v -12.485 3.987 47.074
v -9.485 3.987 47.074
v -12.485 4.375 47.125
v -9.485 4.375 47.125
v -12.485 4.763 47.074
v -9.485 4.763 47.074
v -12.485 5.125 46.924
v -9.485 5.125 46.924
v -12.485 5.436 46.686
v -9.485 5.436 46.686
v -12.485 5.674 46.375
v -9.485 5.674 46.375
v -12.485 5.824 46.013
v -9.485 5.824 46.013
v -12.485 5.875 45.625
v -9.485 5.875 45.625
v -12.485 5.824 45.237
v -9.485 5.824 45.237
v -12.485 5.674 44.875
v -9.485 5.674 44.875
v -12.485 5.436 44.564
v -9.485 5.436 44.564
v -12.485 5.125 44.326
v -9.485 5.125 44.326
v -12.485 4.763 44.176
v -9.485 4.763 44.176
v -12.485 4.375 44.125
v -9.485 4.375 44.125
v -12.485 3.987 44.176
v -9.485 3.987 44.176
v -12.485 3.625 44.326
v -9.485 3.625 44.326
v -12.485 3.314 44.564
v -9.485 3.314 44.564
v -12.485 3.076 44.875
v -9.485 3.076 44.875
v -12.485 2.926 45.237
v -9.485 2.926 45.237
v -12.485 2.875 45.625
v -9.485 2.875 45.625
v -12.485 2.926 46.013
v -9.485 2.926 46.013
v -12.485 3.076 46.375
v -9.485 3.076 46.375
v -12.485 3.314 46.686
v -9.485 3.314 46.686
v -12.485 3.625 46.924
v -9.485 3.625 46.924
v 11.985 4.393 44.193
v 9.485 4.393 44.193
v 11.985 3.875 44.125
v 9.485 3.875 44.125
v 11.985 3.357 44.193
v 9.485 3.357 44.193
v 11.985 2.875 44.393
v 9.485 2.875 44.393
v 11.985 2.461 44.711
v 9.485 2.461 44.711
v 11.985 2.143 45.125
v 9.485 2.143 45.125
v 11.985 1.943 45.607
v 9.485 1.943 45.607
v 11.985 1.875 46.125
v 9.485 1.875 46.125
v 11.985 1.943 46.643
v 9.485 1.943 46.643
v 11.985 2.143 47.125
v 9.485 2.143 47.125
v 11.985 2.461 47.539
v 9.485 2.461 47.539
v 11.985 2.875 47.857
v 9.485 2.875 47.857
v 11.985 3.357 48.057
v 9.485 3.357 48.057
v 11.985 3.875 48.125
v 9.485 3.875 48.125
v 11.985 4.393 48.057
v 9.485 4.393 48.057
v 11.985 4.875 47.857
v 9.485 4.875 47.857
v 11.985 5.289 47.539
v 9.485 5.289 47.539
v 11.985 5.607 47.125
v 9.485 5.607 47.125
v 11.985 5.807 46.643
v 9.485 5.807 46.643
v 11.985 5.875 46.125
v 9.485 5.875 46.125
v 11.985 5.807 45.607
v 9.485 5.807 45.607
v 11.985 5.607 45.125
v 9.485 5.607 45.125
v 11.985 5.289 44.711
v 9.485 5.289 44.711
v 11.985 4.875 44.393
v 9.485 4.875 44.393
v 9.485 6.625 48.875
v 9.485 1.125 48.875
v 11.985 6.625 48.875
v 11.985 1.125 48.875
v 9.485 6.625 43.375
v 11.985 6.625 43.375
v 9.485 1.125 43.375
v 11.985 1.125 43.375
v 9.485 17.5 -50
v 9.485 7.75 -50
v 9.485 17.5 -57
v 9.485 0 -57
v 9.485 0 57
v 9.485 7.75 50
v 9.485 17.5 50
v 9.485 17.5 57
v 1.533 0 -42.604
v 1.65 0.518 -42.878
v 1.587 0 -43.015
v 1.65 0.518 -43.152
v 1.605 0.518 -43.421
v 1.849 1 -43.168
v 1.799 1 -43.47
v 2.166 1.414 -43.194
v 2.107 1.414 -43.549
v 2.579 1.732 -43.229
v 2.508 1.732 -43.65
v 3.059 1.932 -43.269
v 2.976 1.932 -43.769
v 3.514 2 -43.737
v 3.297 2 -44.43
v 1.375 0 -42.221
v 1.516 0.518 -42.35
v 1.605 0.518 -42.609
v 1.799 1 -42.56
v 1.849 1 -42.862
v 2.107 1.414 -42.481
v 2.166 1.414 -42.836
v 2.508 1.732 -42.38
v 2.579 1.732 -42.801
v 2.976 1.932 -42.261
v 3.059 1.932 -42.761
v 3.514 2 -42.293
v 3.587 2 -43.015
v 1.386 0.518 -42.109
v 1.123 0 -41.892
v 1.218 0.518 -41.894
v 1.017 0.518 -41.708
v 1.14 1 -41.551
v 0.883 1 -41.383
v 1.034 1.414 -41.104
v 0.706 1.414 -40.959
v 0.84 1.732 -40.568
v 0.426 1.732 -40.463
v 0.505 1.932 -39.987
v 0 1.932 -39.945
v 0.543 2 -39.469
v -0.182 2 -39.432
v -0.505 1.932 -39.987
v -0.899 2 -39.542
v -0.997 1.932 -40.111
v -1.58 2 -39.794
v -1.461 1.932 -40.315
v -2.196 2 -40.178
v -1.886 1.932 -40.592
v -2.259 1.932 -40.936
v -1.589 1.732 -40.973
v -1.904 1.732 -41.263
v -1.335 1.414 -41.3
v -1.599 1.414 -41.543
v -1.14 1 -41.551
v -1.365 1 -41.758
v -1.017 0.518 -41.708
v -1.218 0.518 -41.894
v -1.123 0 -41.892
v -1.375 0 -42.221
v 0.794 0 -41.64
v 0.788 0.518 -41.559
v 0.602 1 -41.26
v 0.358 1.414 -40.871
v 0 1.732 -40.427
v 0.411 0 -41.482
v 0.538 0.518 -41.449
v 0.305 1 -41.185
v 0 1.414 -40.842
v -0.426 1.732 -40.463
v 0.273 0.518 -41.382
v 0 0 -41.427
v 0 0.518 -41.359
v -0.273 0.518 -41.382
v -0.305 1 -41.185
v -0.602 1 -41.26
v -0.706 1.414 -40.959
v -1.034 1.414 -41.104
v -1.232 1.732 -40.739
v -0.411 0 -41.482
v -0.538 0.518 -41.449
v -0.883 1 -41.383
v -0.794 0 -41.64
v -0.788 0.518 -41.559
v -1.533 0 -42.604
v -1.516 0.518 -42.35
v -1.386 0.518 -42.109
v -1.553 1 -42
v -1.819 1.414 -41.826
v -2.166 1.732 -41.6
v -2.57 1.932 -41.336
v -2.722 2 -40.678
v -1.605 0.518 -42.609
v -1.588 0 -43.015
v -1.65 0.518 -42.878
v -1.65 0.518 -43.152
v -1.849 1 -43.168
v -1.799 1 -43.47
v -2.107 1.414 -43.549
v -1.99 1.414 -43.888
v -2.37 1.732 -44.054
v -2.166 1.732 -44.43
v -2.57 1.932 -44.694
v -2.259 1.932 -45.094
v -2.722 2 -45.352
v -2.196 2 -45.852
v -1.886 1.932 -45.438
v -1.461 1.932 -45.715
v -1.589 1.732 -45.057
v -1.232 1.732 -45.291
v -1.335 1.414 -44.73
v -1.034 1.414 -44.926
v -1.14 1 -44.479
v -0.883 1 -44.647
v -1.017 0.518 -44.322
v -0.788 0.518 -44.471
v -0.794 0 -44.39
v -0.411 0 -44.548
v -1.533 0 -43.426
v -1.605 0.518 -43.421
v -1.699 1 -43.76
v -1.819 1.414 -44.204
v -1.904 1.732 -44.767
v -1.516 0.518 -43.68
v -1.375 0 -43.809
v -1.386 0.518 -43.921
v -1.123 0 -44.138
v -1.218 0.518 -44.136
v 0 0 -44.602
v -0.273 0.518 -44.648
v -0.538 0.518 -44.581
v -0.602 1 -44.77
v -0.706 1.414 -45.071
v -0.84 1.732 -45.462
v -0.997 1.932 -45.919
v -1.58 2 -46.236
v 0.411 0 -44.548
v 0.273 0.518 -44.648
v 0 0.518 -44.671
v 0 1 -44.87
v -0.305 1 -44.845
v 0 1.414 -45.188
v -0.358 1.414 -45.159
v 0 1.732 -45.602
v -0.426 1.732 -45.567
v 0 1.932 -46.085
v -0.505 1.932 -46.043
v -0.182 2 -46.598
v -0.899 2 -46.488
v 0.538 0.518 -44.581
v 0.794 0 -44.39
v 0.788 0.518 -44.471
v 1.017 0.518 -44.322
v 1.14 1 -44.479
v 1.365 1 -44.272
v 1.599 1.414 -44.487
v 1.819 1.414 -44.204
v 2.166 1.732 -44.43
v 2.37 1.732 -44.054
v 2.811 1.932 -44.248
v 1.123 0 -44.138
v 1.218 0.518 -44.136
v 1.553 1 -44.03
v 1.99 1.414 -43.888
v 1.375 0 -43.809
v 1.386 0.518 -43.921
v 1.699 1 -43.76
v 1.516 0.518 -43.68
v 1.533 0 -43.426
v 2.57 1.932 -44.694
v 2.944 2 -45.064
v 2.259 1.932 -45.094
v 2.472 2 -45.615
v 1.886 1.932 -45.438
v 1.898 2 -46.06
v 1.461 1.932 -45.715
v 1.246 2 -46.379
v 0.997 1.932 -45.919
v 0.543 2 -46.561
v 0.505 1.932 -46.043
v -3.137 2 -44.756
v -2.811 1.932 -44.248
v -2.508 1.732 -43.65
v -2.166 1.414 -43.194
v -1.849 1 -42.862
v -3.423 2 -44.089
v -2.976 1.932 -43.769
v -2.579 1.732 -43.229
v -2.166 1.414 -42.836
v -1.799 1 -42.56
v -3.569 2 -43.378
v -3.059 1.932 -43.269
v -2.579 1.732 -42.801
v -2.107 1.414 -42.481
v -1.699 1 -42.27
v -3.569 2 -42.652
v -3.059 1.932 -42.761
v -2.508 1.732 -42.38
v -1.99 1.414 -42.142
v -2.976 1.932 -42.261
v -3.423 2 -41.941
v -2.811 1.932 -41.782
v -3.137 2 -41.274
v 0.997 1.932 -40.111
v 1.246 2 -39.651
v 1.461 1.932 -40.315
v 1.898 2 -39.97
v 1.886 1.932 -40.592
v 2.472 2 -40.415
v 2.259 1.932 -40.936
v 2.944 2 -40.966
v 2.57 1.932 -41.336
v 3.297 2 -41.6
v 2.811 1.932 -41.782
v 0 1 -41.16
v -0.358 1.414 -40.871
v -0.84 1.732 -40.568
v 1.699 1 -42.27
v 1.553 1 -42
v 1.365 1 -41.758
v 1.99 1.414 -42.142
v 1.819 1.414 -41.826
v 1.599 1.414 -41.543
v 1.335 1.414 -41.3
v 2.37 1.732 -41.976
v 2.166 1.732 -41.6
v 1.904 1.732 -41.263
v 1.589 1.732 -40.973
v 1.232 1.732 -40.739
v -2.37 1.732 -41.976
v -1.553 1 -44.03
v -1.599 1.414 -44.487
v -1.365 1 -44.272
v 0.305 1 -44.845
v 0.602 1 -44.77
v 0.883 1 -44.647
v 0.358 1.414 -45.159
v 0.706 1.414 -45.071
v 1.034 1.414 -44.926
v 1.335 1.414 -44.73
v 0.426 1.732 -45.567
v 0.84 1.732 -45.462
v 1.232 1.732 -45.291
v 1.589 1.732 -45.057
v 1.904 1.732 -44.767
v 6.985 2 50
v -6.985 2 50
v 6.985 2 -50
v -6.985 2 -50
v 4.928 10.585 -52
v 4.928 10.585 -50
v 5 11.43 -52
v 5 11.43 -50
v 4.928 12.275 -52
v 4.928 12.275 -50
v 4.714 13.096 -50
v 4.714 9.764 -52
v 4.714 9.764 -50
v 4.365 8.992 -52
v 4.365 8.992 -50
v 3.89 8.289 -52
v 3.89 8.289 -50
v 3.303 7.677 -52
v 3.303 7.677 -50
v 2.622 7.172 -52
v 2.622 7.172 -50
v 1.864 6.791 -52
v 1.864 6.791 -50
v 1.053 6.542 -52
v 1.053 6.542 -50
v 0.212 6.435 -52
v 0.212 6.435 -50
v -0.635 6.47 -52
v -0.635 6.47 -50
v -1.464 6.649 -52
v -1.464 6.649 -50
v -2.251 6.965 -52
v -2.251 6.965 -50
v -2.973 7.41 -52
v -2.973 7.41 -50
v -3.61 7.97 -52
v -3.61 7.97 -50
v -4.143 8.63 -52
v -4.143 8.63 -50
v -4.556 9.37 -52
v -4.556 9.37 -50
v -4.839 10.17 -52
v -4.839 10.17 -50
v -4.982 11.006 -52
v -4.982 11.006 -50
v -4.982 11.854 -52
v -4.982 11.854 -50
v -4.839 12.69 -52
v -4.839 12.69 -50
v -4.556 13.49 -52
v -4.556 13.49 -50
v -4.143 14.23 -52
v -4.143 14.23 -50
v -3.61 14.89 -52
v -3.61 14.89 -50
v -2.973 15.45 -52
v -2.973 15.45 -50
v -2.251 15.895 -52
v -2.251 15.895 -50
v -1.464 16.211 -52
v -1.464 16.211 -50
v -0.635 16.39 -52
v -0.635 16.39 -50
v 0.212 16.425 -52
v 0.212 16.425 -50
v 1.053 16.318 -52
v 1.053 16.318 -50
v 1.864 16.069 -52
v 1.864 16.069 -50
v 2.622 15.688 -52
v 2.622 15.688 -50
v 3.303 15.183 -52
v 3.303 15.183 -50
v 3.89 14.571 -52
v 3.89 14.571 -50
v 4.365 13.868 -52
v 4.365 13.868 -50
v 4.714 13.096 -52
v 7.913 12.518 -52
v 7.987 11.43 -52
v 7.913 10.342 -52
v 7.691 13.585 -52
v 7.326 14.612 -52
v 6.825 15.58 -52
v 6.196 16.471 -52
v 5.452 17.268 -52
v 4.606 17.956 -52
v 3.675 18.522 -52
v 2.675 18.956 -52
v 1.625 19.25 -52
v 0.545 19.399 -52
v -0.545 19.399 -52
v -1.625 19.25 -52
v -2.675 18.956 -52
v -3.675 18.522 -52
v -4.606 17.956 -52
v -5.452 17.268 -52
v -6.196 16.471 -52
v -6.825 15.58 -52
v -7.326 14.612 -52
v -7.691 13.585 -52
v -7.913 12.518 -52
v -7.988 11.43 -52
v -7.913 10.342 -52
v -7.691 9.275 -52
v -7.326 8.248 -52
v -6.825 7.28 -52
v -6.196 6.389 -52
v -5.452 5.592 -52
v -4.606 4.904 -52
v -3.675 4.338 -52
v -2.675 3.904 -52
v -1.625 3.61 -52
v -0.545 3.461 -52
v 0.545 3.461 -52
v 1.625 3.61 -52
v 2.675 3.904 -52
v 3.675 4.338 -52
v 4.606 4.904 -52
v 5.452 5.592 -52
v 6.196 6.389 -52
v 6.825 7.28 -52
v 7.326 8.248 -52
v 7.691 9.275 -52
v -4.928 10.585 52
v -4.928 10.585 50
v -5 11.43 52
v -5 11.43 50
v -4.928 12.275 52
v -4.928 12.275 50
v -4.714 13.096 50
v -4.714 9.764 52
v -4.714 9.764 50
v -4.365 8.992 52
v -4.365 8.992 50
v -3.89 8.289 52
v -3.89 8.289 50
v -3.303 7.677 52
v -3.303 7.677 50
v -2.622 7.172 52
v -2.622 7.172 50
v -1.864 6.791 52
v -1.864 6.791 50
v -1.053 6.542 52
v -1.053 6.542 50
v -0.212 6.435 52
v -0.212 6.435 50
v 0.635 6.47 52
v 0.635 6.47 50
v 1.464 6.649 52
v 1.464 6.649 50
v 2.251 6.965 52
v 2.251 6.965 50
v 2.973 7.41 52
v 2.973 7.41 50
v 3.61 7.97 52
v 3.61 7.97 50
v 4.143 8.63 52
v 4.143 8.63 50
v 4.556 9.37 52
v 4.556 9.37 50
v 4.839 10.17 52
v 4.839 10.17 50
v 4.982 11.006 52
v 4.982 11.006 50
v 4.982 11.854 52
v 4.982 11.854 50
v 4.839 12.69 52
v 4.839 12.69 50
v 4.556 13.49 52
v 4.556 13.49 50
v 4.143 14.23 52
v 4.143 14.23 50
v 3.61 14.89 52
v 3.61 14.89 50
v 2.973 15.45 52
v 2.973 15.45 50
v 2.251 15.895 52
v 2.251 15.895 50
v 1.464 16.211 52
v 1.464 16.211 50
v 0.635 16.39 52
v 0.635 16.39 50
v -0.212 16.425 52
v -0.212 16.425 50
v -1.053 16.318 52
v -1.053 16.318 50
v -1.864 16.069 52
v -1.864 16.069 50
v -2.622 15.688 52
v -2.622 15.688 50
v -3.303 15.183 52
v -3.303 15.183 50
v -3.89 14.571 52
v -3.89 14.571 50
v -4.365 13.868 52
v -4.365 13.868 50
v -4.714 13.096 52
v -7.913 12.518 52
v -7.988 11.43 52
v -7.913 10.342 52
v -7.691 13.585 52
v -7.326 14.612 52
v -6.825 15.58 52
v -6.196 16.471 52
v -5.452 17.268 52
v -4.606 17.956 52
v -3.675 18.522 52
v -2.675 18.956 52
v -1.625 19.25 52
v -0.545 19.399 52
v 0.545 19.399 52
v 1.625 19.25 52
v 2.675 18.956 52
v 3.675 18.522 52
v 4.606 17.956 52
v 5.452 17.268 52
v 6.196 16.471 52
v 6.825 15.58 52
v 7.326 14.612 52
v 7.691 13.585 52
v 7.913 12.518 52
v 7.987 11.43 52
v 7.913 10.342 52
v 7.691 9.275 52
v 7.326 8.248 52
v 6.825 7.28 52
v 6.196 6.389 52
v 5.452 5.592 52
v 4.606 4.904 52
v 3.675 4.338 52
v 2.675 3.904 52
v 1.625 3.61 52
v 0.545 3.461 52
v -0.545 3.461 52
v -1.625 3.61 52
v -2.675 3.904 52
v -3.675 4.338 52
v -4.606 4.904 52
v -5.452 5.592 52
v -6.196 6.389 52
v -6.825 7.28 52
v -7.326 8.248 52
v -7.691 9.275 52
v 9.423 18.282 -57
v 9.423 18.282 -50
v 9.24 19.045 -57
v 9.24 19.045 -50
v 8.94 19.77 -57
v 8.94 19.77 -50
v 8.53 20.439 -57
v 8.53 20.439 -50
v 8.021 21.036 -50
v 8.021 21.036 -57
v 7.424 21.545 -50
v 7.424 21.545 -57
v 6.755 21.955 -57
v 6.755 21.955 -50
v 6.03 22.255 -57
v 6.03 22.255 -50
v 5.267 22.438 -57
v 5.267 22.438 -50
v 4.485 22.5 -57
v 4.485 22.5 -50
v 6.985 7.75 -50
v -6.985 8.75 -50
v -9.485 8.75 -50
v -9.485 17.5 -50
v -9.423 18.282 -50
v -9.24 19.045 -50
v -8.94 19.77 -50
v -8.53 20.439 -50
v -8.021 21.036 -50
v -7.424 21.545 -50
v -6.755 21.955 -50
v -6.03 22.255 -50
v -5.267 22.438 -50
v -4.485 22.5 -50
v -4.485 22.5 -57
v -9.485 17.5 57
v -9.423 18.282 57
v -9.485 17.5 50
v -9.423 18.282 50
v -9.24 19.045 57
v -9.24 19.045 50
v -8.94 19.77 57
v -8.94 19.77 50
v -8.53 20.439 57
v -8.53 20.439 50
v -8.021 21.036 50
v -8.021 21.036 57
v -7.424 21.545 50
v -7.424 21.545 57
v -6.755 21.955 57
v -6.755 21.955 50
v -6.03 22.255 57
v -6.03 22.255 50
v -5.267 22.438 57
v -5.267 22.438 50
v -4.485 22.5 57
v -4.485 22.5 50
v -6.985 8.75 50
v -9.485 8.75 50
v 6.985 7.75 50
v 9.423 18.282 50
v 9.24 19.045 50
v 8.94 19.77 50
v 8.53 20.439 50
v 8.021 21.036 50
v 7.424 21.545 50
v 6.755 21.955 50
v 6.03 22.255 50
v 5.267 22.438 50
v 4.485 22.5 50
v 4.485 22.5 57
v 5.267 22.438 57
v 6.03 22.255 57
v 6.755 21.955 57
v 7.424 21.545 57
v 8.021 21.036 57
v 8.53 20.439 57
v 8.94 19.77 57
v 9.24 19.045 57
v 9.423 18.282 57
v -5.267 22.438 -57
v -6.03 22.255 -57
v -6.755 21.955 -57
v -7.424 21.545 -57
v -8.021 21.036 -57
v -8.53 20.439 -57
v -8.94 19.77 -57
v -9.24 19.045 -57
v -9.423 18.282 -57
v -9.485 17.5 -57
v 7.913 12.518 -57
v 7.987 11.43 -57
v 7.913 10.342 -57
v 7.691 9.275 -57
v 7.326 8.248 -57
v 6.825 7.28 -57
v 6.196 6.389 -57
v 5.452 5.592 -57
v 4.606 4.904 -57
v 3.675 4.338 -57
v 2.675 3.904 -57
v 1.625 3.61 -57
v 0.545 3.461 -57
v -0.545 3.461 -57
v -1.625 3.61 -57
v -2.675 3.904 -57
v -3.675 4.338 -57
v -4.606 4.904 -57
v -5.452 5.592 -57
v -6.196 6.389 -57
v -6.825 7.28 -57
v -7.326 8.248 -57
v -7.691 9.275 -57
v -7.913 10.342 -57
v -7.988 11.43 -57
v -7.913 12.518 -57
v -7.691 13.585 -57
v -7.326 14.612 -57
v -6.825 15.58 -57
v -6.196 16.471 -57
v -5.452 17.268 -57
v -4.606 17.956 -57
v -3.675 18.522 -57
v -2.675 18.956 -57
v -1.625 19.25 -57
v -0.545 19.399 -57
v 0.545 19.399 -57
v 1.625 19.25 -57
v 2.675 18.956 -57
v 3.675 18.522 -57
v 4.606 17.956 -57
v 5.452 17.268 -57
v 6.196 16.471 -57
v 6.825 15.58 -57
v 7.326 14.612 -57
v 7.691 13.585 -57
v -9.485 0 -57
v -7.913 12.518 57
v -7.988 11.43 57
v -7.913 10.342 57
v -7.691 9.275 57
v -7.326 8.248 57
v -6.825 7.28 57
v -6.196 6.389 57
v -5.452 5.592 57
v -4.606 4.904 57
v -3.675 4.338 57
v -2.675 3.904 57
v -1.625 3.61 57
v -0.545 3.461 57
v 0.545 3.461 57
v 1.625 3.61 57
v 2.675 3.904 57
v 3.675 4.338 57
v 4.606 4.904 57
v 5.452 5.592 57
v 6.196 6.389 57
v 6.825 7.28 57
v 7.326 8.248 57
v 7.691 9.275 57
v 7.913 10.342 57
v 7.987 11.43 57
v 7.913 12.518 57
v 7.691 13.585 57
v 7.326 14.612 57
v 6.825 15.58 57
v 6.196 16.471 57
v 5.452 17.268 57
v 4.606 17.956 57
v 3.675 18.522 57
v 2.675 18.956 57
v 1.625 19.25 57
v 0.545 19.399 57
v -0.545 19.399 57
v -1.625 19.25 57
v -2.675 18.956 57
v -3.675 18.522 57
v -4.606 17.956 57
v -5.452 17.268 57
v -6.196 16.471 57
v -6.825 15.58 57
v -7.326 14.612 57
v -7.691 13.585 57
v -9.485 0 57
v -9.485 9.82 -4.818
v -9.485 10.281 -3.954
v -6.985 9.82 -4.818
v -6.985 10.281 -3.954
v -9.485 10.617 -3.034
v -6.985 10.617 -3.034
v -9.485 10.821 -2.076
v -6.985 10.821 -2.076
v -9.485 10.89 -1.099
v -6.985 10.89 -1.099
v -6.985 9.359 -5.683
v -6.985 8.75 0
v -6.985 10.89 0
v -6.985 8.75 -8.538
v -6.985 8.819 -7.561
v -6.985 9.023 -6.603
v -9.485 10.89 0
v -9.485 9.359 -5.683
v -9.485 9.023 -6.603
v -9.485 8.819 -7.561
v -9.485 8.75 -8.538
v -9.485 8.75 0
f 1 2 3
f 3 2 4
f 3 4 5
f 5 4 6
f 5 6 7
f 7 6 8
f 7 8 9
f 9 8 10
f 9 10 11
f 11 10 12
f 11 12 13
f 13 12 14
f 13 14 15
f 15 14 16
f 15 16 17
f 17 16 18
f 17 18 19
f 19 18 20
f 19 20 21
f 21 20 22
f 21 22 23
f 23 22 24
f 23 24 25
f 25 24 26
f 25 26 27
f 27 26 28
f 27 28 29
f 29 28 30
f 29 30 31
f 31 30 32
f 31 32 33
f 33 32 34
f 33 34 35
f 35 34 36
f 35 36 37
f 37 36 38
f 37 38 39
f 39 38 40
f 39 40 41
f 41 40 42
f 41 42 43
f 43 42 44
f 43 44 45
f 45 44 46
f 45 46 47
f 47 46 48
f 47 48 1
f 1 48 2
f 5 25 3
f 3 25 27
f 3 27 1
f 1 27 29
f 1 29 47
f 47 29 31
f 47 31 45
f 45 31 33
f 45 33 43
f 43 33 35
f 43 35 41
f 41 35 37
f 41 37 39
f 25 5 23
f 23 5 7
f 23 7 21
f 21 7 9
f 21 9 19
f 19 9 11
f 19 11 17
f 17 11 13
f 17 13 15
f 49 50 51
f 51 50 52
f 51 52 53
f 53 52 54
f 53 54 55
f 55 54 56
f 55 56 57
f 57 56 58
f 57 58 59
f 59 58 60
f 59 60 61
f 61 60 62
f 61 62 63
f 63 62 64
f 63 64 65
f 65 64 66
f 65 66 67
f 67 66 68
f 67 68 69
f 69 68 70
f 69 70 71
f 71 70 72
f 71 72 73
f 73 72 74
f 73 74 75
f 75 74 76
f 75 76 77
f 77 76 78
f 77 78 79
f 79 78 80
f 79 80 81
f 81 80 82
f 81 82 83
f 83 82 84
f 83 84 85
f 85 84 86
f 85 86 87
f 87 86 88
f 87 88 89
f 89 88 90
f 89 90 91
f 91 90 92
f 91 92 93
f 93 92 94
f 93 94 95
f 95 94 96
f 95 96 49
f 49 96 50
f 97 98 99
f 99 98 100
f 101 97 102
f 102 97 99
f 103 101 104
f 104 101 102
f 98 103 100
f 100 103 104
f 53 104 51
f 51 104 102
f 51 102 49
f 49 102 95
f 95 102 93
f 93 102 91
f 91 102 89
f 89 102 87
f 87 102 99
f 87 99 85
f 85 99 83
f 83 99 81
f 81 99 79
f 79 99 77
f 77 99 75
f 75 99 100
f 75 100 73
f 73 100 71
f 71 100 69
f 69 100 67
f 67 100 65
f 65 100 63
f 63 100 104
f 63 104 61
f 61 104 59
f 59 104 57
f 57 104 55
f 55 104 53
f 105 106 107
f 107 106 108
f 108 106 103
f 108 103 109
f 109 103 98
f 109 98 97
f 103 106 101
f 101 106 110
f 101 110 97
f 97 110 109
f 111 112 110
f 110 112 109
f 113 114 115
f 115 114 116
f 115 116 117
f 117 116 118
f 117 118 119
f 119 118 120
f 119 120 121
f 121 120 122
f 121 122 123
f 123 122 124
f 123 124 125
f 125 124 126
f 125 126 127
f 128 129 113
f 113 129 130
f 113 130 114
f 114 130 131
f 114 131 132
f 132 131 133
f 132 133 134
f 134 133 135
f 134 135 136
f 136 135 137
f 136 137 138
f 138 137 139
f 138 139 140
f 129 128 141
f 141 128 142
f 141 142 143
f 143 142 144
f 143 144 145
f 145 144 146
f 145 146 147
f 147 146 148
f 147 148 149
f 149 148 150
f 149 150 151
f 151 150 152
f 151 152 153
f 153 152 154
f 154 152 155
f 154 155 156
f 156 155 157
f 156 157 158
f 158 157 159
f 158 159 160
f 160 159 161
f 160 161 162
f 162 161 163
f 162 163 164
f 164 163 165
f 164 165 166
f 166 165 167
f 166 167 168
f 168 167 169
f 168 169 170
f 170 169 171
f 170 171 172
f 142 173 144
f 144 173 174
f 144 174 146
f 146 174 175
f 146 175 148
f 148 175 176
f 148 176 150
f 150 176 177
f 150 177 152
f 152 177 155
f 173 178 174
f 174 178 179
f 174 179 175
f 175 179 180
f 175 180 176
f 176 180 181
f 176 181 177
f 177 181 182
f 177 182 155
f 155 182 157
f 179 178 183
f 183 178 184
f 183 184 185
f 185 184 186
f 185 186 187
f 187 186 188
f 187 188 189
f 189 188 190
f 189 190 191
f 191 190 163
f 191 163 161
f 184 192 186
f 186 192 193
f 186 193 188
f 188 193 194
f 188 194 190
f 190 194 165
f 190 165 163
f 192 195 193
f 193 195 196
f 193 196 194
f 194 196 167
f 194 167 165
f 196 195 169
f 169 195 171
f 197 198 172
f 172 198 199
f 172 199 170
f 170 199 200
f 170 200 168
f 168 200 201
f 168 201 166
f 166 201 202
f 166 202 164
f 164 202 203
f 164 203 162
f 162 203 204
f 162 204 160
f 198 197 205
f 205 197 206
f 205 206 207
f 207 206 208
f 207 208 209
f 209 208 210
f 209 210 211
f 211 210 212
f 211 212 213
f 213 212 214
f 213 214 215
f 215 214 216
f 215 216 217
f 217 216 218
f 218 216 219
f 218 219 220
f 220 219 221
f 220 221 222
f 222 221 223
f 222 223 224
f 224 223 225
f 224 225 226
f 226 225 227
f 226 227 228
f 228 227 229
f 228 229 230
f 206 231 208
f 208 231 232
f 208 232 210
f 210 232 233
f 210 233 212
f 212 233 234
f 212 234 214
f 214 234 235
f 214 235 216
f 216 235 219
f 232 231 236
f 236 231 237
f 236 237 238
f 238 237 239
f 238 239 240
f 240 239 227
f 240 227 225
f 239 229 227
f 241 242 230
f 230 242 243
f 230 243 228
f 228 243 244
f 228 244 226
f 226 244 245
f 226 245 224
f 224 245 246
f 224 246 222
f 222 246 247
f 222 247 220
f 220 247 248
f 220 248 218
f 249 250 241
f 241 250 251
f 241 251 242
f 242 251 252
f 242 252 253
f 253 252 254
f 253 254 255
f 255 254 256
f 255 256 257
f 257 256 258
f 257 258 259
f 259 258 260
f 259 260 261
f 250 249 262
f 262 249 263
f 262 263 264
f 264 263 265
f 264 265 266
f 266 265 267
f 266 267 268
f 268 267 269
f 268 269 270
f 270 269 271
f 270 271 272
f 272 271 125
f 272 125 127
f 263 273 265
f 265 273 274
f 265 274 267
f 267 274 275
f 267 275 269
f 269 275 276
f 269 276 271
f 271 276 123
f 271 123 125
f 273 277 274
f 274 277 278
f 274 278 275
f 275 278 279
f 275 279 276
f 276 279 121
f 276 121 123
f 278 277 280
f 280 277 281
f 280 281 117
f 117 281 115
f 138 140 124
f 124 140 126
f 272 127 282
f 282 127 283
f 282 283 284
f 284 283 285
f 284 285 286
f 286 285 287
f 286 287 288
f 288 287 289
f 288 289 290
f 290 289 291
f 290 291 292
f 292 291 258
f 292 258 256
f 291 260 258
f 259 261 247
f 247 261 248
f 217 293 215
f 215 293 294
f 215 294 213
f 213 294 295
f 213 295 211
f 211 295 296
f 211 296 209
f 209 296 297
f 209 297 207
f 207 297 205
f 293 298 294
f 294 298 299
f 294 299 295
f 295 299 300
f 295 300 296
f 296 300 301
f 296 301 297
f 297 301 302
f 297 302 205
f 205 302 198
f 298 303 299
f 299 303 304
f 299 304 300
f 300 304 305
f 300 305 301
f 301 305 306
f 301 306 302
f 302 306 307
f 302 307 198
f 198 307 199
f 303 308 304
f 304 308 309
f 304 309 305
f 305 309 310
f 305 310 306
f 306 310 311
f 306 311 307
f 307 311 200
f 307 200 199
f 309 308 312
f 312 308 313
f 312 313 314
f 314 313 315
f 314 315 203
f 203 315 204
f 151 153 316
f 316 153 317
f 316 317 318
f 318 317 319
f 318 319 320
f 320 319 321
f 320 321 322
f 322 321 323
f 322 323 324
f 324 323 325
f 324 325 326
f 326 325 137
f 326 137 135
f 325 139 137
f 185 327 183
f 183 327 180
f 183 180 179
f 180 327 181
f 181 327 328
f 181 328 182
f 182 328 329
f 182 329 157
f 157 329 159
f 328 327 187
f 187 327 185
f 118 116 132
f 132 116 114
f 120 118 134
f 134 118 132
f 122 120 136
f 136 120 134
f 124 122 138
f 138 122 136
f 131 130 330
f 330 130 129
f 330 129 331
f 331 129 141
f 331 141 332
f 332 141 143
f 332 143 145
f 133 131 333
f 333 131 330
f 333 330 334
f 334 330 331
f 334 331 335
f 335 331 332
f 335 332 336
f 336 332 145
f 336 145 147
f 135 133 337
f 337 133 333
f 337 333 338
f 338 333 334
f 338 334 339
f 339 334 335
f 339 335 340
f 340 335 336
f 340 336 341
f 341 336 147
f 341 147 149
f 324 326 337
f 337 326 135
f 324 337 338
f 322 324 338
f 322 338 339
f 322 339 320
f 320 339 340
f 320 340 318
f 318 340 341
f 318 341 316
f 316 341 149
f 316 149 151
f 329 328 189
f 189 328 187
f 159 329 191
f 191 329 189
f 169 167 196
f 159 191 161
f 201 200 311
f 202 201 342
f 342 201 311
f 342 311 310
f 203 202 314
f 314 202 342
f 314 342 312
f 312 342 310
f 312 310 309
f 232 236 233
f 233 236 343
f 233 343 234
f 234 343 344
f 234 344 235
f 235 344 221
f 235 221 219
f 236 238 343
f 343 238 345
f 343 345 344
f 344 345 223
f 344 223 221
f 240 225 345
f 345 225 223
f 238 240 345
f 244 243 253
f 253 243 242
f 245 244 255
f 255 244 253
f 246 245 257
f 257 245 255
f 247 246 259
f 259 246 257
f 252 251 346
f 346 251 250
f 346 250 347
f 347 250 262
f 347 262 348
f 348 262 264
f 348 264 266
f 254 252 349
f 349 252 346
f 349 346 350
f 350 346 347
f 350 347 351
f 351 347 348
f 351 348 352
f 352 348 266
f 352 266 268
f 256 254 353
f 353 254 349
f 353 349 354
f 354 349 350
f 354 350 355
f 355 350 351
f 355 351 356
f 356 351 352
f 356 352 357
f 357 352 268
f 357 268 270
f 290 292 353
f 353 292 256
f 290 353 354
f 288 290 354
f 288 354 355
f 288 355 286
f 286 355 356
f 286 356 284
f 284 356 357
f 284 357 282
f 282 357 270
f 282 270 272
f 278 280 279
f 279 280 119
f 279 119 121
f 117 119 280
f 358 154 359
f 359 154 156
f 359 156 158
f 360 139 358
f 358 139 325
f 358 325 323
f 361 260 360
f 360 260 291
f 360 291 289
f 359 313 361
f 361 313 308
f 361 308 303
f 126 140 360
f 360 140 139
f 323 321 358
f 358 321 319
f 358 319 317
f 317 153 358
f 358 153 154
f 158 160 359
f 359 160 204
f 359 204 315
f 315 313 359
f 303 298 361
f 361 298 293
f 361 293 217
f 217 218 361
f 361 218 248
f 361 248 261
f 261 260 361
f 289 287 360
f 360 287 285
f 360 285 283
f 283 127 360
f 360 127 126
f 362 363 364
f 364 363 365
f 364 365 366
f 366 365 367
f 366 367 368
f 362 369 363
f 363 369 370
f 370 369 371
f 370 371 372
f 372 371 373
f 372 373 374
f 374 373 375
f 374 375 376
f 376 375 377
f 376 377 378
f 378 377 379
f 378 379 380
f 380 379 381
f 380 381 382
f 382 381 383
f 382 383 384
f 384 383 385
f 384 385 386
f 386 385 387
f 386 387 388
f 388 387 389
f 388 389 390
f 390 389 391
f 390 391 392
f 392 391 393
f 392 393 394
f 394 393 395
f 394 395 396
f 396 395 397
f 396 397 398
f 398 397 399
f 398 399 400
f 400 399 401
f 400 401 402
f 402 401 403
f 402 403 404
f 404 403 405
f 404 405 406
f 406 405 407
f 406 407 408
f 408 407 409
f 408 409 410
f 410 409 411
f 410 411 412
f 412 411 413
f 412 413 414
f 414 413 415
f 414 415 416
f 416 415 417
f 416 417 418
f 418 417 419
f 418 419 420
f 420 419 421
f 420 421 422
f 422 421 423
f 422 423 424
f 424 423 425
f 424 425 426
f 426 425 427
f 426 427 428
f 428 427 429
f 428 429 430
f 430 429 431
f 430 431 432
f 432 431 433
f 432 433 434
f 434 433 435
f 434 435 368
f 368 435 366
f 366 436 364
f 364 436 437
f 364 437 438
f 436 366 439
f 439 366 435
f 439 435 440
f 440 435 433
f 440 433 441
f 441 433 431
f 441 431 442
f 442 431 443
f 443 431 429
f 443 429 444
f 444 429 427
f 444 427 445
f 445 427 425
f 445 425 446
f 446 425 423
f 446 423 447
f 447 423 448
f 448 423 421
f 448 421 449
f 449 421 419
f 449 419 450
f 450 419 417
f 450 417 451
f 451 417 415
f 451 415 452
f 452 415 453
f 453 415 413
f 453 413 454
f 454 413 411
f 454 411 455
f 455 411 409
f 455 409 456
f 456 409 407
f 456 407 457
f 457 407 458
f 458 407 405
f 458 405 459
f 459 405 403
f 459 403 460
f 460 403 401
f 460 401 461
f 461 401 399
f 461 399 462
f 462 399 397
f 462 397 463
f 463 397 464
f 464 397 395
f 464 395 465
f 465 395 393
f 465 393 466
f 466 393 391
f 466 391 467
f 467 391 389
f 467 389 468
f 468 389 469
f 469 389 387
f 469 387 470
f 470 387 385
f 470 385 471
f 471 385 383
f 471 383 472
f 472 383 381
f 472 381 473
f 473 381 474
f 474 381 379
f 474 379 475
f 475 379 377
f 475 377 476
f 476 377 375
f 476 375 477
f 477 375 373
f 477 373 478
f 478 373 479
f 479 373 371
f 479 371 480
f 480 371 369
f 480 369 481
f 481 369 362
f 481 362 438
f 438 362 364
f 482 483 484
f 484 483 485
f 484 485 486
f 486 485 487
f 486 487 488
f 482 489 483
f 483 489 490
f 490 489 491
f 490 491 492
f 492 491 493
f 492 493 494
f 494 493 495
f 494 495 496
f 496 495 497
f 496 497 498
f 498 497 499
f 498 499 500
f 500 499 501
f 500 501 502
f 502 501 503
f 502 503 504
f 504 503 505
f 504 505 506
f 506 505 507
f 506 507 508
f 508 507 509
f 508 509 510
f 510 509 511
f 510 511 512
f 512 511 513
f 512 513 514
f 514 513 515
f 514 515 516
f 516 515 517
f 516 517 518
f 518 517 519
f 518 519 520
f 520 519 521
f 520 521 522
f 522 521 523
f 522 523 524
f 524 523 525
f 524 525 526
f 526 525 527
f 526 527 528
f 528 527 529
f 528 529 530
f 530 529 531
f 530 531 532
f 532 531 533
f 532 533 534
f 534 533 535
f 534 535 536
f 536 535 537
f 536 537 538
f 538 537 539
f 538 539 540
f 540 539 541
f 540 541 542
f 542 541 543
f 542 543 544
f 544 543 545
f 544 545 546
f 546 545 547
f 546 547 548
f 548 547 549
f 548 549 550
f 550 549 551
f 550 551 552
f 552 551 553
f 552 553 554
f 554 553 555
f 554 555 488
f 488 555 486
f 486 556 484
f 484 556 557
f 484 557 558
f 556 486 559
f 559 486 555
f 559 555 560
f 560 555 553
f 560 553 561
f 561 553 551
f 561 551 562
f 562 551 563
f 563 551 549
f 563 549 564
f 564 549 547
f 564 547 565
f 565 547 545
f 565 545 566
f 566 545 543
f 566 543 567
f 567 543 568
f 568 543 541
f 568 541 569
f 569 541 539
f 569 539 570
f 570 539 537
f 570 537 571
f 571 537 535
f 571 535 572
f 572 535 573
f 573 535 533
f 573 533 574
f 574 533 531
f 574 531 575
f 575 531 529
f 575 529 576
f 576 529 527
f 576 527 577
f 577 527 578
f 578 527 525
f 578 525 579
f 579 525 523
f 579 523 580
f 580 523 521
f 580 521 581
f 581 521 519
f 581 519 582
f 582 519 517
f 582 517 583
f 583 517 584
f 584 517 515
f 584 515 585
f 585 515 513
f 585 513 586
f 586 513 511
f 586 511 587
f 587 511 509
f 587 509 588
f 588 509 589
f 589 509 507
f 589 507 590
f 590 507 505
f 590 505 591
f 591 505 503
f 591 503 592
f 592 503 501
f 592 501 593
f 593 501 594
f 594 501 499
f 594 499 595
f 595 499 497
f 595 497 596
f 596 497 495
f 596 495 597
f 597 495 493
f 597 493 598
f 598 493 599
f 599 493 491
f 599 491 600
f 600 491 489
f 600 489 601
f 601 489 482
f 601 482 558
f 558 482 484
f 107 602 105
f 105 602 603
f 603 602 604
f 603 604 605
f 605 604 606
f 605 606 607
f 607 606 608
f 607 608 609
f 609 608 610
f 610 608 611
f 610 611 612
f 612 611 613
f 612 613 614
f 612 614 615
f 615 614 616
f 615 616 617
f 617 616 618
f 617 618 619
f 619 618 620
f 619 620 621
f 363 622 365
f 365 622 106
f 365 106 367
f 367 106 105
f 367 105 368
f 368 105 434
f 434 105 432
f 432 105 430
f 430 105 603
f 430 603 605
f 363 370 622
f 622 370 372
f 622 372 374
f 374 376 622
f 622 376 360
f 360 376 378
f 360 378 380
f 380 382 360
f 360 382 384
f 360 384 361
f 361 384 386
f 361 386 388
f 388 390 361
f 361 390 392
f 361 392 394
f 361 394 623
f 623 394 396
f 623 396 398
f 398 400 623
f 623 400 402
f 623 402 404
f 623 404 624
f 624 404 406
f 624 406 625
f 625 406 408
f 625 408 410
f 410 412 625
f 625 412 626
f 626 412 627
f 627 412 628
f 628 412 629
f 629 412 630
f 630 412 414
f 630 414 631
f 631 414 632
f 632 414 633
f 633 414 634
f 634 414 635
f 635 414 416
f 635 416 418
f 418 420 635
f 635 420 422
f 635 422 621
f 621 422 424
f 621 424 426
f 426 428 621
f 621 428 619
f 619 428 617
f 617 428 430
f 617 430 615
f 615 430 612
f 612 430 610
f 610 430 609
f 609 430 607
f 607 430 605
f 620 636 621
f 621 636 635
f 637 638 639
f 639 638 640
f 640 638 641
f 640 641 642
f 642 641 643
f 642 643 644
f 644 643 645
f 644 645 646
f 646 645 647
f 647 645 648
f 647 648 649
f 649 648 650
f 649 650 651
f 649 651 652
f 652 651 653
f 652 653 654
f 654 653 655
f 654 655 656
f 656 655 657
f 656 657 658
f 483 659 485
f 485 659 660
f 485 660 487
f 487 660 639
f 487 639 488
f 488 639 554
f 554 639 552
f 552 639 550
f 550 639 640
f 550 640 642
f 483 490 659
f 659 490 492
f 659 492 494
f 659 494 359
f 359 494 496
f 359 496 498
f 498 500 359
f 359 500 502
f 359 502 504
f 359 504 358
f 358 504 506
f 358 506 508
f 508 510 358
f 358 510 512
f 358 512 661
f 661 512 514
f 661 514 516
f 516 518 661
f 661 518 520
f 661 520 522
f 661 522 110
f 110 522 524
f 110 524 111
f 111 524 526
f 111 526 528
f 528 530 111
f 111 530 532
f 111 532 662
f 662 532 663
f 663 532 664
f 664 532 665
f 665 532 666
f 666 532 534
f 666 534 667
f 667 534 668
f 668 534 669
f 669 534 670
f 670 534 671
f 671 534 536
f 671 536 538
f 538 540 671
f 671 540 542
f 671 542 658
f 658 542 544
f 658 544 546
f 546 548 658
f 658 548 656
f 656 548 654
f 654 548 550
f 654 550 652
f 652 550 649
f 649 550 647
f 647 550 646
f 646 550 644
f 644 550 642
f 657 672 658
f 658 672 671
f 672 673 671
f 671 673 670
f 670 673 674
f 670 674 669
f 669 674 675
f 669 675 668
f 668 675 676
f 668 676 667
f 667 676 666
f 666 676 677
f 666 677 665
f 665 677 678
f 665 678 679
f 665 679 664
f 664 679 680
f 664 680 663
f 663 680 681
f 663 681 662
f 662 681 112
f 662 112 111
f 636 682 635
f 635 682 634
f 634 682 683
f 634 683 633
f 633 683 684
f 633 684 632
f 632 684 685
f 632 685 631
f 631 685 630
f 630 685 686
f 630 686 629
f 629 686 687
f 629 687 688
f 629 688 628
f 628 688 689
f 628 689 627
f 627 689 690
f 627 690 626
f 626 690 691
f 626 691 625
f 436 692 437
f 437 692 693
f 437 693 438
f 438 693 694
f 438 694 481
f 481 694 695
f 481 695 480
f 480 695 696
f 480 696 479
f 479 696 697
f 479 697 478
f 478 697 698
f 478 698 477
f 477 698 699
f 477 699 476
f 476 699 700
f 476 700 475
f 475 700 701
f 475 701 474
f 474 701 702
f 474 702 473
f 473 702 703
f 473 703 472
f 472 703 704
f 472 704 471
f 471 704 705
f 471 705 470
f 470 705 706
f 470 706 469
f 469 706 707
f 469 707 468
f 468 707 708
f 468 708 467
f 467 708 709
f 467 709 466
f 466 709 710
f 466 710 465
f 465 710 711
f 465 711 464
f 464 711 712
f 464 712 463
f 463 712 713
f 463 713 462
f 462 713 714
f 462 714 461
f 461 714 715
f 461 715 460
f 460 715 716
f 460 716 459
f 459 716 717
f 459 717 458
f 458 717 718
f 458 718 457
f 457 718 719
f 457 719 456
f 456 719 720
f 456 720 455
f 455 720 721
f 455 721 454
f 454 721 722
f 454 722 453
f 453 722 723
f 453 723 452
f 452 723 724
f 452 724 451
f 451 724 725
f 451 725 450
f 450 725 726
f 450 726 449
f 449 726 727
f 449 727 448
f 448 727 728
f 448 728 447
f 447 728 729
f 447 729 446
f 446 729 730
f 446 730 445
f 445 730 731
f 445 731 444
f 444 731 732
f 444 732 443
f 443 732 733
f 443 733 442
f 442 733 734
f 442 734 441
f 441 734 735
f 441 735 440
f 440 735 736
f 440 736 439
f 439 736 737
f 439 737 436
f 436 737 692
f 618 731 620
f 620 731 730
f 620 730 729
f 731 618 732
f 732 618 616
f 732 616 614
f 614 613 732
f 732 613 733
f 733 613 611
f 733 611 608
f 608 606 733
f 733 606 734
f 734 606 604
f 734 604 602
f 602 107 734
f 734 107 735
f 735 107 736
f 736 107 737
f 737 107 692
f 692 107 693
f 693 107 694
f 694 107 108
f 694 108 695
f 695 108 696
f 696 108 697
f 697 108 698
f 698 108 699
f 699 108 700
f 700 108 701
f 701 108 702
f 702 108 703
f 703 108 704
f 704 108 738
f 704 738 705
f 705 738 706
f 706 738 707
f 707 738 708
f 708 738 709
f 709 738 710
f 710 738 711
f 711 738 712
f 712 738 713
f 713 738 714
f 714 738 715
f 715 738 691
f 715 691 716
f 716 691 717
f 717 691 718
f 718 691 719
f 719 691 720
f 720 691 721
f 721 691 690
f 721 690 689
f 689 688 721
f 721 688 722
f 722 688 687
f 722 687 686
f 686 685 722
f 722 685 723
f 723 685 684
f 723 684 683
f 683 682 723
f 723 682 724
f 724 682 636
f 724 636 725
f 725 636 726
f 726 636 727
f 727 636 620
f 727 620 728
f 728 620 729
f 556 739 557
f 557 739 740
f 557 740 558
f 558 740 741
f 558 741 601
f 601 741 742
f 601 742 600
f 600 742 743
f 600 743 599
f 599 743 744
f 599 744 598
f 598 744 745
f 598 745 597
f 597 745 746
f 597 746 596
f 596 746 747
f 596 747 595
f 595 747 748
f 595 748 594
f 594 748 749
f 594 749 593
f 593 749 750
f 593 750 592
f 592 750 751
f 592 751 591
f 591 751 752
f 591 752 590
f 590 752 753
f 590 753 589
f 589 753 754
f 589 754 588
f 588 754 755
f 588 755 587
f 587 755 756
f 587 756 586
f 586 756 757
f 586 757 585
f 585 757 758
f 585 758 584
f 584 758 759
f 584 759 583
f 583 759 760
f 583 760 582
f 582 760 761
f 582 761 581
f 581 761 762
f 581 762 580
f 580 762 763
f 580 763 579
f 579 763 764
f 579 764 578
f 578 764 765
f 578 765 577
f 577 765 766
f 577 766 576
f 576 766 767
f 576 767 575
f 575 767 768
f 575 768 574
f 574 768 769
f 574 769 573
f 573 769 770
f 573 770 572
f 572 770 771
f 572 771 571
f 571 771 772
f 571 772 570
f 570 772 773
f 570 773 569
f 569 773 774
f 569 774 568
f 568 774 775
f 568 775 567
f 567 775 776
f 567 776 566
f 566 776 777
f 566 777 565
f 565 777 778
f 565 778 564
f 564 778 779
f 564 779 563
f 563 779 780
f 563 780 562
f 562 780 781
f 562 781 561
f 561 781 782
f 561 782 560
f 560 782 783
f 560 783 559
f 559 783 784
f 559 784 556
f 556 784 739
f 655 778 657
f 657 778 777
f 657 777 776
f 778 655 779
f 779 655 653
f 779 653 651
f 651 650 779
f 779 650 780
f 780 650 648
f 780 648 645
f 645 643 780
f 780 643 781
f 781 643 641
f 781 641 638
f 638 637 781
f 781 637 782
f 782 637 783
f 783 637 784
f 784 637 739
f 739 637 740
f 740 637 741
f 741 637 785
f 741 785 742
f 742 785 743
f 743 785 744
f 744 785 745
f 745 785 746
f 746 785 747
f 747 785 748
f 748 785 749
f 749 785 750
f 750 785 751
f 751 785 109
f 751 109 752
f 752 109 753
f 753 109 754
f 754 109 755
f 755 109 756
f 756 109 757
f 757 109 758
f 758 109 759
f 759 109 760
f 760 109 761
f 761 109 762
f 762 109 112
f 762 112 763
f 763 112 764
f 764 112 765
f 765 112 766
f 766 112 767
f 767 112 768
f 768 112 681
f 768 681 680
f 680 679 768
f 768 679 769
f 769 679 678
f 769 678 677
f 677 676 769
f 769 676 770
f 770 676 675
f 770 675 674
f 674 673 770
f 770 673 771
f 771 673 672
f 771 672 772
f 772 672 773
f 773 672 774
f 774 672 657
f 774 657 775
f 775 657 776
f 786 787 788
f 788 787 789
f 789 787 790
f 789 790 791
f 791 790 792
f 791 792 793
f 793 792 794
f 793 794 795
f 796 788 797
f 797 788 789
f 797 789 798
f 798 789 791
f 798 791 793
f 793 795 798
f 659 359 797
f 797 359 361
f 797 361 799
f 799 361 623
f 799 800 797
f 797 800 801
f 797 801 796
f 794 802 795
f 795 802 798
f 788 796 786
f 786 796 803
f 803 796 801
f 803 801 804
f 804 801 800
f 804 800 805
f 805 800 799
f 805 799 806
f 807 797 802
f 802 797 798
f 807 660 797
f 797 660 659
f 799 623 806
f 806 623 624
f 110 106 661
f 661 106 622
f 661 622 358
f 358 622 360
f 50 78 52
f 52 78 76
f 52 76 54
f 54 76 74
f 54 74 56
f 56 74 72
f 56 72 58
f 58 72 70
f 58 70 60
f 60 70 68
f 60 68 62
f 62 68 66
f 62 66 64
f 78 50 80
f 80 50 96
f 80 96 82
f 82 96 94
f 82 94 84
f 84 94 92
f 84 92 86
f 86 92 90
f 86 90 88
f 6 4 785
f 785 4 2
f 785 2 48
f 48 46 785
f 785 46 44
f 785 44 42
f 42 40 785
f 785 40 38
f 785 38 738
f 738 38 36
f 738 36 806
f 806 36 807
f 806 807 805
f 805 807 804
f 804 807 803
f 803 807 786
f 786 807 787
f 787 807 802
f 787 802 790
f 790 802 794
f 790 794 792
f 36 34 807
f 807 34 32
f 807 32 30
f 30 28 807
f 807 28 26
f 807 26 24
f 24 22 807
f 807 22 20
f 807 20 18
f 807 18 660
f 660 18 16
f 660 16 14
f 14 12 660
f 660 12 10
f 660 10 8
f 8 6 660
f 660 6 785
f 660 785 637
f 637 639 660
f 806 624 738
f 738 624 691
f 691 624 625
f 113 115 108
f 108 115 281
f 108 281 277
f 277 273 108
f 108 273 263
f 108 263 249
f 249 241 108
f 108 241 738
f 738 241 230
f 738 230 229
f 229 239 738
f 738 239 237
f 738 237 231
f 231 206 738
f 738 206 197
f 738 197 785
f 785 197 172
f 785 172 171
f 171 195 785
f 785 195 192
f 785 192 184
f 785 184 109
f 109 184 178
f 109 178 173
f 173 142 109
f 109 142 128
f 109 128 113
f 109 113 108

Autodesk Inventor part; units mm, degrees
ref_plane "YZ Plane" through (0, 0, 0) normal (1, 0, 0) x (0, 1, 0)
ref_plane "XZ Plane" through (0, 0, 0) normal (0, 1, 0) x (-1, 0, 0)
ref_plane "XY Plane" through (0, 0, 0) normal (0, 0, 1) x (1, 0, 0)
sketch "Sketch1" plane through (0, 0, 0) normal (0, 1, 0) x (-1, 0, 0)
  line L0 (-6.985, 50) -> (6.985, 50)
  line L1 (6.985, 50) -> (6.985, -50)
  line L2 (6.985, -50) -> (-6.985, -50)
  line L3 (-6.985, -50) -> (-6.985, 50)
  line L4 (-6.985, 50) -> (6.985, -50) construction
  line L5 (6.985, 50) -> (-6.985, -50) construction
  point P0 (0, 0)
  dimension "d0" = 13.97
  dimension "d1" = 100
extrude "Extrusion1" add sketch "Sketch1" along normal blind 2
sketch "Sketch2" plane through (0, 0, 0) normal (0, -1, 0) x (1, 0, 0)
  point P0 (0, 0)
sketch "Sketch3" plane through (0, 2, 0) normal (0, 1, 0) x (1, 0, 0)
  point P0 (0, 0)
sketch "Sketch4" plane through (0, 0, 0) normal (0, -1, 0) x (1, 0, 0)
  line L0 (6.985, -50) -> (-6.985, -50) projected
  line L1 (-6.985, -50) -> (-9.485, -50)
  line L2 (-9.485, -50) -> (-9.485, 50)
  line L3 (-9.485, 50) -> (-6.985, 50)
  line L4 (-6.985, 50) -> (-6.985, -50)
  line L5 (-6.985, 50) -> (6.985, 50) projected
  line L6 (6.985, 50) -> (9.485, 50)
  line L7 (9.485, 50) -> (9.485, -50)
  line L8 (9.485, -50) -> (6.985, -50)
  line L9 (6.985, -50) -> (6.985, 50)
  point P0 (0, 0)
  dimension "d4" = 2.5
  dimension "d5" = 2.5
extrude "Extrusion2" add sketch "Sketch4" against normal blind 10.89 contours L9 L6 L7 L8 | L1 L2 L3 L4
sketch "Sketch5" plane through (0, 10.89, 0) normal (0, 1, 0) x (1, 0, 0)
  line L0 (9.485, 50) -> (9.485, -50) projected
  line L1 (6.985, 50) -> (-6.985, 50) projected
  line L2 (9.485, -50) -> (6.985, -50)
  line L3 (6.985, -50) -> (6.985, 50)
  line L4 (6.985, 50) -> (9.485, 50)
  line L5 (9.485, 50) -> (9.485, -50)
  point P0 (0, 0)
extrude "Extrusion3" cut sketch "Sketch5" against normal blind 3.14
sketch "Sketch6" plane through (0, 10.89, 0) normal (0, 1, 0) x (1, 0, 0)
  line L0 (-6.985, 50) -> (-6.985, -50) projected
  line L1 (-9.485, -50) -> (-9.485, 50) projected
  line L2 (-6.985, -50) -> (-9.485, -50)
  line L3 (-9.485, -50) -> (-9.485, 50)
  line L4 (-9.485, 50) -> (-6.985, 50)
  line L5 (-6.985, 50) -> (-6.985, -50)
  point P0 (0, 0)
extrude "Extrusion4" cut sketch "Sketch6" against normal blind 2.14
sketch "Sketch7" plane through (0, 8.75, 0) normal (0, 1, 0) x (1, 0, 0)
  line L0 (-6.985, 50) -> (-6.985, -50) projected
  line L1 (-9.485, -50) -> (-9.485, 50) projected
  line L2 (-6.985, 0) -> (-9.485, 0)
  line L3 (-9.485, 0) -> (-9.485, 3.5)
  line L4 (-9.485, 3.5) -> (-6.985, 3.5)
  line L5 (-6.985, 3.5) -> (-6.985, 0)
  point P0 (0, 0)
  dimension "d12" = 3.5
extrude "Extrusion5" add sketch "Sketch7" along normal blind 2.14
fillet "Fillet1" radius 7 2 edges at (-8.235, 8.75, -3.5) (-8.235, 10.89, -3.5)
sketch "Sketch8" plane through (-9.485, 0, 50) normal (0, 0, 1) x (1, 0, 0)
  line L0 (0, 0) -> (0, 8.75) construction
  line L1 (0, 0) -> (18.97, 0) construction
  line L2 (18.97, 0) -> (18.97, 11.43) construction
  line L3 (18.97, 11.43) -> (0, 11.43) construction
  line L4 (0, 11.43) -> (0, 0) construction
  line L5 (0, 0) -> (18.97, 0)
  line L6 (18.97, 0) -> (18.97, 22.5)
  line L7 (18.97, 22.5) -> (0, 22.5)
  line L8 (0, 22.5) -> (0, 0)
  circle A0 centre (9.485, 11.43) radius 7.9875
  point P0 (9.485, 0)
  dimension "d16" = 11.43
  dimension "d17" = 22.5
  dimension "d18" = 15.975
extrude "Extrusion6" add sketch "Sketch8" along normal blind 7
sketch "Sketch9" plane through (9.485, 0, -50) normal (0, 0, -1) x (-1, 0, 0)
  line L0 (0, 22.5) -> (18.97, 22.5) projected
  line L1 (0, 0) -> (18.97, 0)
  line L2 (18.97, 0) -> (18.97, 22.5)
  line L3 (18.97, 22.5) -> (0, 22.5)
  line L4 (0, 22.5) -> (0, 0)
  circle A0 centre (9.485, 11.43) radius 7.9875 projected
  circle A1 centre (9.485, 11.43) radius 7.9875
  point P0 (9.485, 0)
extrude "Extrusion7" add sketch "Sketch9" along normal blind 7
fillet "Fillet2" radius 5 4 edges at (-9.485, 22.5, -53.5) (9.485, 22.5, 53.5) (-9.485, 22.5, 53.5) (9.485, 22.5, -53.5)
sketch "Sketch10" plane through (-9.485, 0, 50) normal (0, 0, -1) x (-1, 0, 0)
  circle A0 centre (-9.485, 11.43) radius 7.9875 projected
  circle A1 centre (-9.485, 11.43) radius 7.9875
  circle A2 centre (-9.485, 11.43) radius 3.175 construction
  circle A3 centre (-9.485, 11.43) radius 5
  point P0 (-9.485, 0)
  dimension "d24" = 6.35
  dimension "d25" = 10
extrude "Extrusion8" add sketch "Sketch10" against normal blind 2
sketch "Sketch11" plane through (9.485, 0, -50) normal (0, 0, 1) x (1, 0, 0)
  circle A0 centre (-9.485, 11.43) radius 5 projected
  circle A1 centre (-9.485, 11.43) radius 7.9875
  circle A2 centre (-9.485, 11.43) radius 5
  point P0 (-9.485, 0)
  dimension "d28" = 10
extrude "Extrusion9" add sketch "Sketch11" against normal blind 2
sketch "Sketch12" plane through (0, 8.75, 0) normal (0, 1, 0) x (1, 0, 0)
  point P0 (0, 0)
sketch "Sketch13" plane through (0, 2, 0) normal (0, 1, 0) x (1, 0, 0)
  line L0 (6.985, 50) -> (-6.985, 50) construction
  line L1 (-6.985, 50) -> (-6.985, 8.5379) construction
  line L2 (6.985, 50) -> (-6.985, 50) construction
  line L3 (-6.985, 50) -> (-6.985, 36.03) construction
  line L4 (-6.985, 36.03) -> (6.985, 36.03) construction
  line L5 (6.985, 36.03) -> (6.985, 50) construction
  circle A0 centre (0, 43.015) radius 1.5875
  point P0 (0, 0)
  dimension "d31" = 13.97
  dimension "d32" = 3.175
extrude "Extrusion10" cut sketch "Sketch13" against normal blind 2
fillet "Fillet3" radius 2 1 edges at (-1.5875, 2, -43.015)
sketch "Sketch14" plane through (0, 2, 0) normal (0, 1, 0) x (1, 0, 0)
  circle A0 centre (0, 43.015) radius 1.5875 construction
  line L0 (0, 43.015) -> (-9.485, 43.015) construction
  line L1 (-9.485, 8.5379) -> (-9.485, 50) construction
  line L2 (0, 43.015) -> (0, 50) construction
  line L3 (6.985, 50) -> (-6.985, 50) construction
  point P0 (0, 0)
  dimension "d36" = 6.985
  dimension "d37" = 9.485
sketch "Sketch15" plane through (-9.485, 8.75, 0) normal (-1, 0, 0) x (0, 0, 1)
  point P0 (0, -8.75)
sketch "Sketch16" plane through (9.485, 0, 57) normal (1, 0, 0) x (0, 0, -1)
  line L0 (107, 7.75) -> (7, 7.75) construction
  line L1 (114, 0) -> (0, 0) construction
  line L2 (7, 7.75) -> (14.75, 7.75) construction
  line L3 (14.75, 7.75) -> (14.75, 0) construction
  line L4 (14.75, 0) -> (7, 0) construction
  line L5 (7, 0) -> (7, 7.75) construction
  line L6 (13.625, 1.125) -> (8.125, 1.125)
  line L7 (8.125, 1.125) -> (8.125, 6.625)
  line L8 (8.125, 6.625) -> (13.625, 6.625)
  line L9 (13.625, 6.625) -> (13.625, 1.125)
  line L10 (13.625, 1.125) -> (8.125, 6.625) construction
  line L11 (8.125, 1.125) -> (13.625, 6.625) construction
  circle A0 centre (10.875, 3.875) radius 2
  point P0 (57, 0)
  dimension "d38" = 7.75
  dimension "d39" = 5.5
  dimension "d40" = 5.5
  dimension "d41" = 4
extrude "Extrusion11" add sketch "Sketch16" along normal blind 2.5
sketch "Sketch17" plane through (9.485, 3.875, 46.125) normal (1, 0, 0) x (0, 0, -1)
  circle A0 centre (0, 0) radius 2 construction
  line L0 (0, 0) -> (-3.875, 0) construction
  line L1 (-3.875, 0) -> (-3.875, -3.875) construction
  line L2 (-3.875, -3.875) -> (0, -3.875) construction
  line L3 (0, -3.875) -> (0, 0) construction
  point P0 (46.125, -3.875)
  dimension "d44" = 3.875
  dimension "d45" = 3.875
sketch "Sketch18" plane through (0, 0, 0) normal (0, -1, 0) x (1, 0, 0)
  point P0 (0, 0)
sketch "Sketch19" plane through (-9.485, 8.75, 0) normal (-1, 0, 0) x (0, 0, 1)
  point P0 (0, -8.75)
sketch "Sketch20" plane through (-9.485, 8.75, 0) normal (-1, 0, 0) x (0, 0, 1)
  line L0 (50, -2.32) -> (50, 7.68) construction
  line L1 (-57, -8.75) -> (57, -8.75) construction
  line L2 (50, 0) -> (41.25, 0) construction
  line L3 (41.25, 0) -> (41.25, -8.75) construction
  line L4 (41.25, -8.75) -> (50, -8.75) construction
  line L5 (50, -8.75) -> (50, 0) construction
  circle A0 centre (45.625, -4.375) radius 1.5 construction
  circle A1 centre (45.625, -4.375) radius 1.5
  point P0 (0, -8.75)
  dimension "d46" = 8.75
  dimension "d47" = 3
extrude "Extrusion12" add sketch "Sketch20" along normal blind 3
sketch "Sketch21" plane through (-9.485, 8.75, 0) normal (-1, 0, 0) x (0, 0, 1)
  circle A0 centre (45.625, -4.375) radius 1.5 construction
  line L0 (45.625, -4.375) -> (50, -4.375) construction
  line L1 (57, -8.75) -> (-57, -8.75) construction
  line L2 (45.625, -4.375) -> (50, -4.375) construction
  line L3 (50, -4.375) -> (50, -8.75) construction
  line L4 (50, -8.75) -> (45.625, -8.75) construction
  line L5 (45.625, -8.75) -> (45.625, -4.375) construction
  point P0 (0, -8.75)
  point P1 (50, 0)
  dimension "d50" = 4.375
  dimension "d51" = 4.375
properties part number "mtv_frontAxelHolder(4_30)"
